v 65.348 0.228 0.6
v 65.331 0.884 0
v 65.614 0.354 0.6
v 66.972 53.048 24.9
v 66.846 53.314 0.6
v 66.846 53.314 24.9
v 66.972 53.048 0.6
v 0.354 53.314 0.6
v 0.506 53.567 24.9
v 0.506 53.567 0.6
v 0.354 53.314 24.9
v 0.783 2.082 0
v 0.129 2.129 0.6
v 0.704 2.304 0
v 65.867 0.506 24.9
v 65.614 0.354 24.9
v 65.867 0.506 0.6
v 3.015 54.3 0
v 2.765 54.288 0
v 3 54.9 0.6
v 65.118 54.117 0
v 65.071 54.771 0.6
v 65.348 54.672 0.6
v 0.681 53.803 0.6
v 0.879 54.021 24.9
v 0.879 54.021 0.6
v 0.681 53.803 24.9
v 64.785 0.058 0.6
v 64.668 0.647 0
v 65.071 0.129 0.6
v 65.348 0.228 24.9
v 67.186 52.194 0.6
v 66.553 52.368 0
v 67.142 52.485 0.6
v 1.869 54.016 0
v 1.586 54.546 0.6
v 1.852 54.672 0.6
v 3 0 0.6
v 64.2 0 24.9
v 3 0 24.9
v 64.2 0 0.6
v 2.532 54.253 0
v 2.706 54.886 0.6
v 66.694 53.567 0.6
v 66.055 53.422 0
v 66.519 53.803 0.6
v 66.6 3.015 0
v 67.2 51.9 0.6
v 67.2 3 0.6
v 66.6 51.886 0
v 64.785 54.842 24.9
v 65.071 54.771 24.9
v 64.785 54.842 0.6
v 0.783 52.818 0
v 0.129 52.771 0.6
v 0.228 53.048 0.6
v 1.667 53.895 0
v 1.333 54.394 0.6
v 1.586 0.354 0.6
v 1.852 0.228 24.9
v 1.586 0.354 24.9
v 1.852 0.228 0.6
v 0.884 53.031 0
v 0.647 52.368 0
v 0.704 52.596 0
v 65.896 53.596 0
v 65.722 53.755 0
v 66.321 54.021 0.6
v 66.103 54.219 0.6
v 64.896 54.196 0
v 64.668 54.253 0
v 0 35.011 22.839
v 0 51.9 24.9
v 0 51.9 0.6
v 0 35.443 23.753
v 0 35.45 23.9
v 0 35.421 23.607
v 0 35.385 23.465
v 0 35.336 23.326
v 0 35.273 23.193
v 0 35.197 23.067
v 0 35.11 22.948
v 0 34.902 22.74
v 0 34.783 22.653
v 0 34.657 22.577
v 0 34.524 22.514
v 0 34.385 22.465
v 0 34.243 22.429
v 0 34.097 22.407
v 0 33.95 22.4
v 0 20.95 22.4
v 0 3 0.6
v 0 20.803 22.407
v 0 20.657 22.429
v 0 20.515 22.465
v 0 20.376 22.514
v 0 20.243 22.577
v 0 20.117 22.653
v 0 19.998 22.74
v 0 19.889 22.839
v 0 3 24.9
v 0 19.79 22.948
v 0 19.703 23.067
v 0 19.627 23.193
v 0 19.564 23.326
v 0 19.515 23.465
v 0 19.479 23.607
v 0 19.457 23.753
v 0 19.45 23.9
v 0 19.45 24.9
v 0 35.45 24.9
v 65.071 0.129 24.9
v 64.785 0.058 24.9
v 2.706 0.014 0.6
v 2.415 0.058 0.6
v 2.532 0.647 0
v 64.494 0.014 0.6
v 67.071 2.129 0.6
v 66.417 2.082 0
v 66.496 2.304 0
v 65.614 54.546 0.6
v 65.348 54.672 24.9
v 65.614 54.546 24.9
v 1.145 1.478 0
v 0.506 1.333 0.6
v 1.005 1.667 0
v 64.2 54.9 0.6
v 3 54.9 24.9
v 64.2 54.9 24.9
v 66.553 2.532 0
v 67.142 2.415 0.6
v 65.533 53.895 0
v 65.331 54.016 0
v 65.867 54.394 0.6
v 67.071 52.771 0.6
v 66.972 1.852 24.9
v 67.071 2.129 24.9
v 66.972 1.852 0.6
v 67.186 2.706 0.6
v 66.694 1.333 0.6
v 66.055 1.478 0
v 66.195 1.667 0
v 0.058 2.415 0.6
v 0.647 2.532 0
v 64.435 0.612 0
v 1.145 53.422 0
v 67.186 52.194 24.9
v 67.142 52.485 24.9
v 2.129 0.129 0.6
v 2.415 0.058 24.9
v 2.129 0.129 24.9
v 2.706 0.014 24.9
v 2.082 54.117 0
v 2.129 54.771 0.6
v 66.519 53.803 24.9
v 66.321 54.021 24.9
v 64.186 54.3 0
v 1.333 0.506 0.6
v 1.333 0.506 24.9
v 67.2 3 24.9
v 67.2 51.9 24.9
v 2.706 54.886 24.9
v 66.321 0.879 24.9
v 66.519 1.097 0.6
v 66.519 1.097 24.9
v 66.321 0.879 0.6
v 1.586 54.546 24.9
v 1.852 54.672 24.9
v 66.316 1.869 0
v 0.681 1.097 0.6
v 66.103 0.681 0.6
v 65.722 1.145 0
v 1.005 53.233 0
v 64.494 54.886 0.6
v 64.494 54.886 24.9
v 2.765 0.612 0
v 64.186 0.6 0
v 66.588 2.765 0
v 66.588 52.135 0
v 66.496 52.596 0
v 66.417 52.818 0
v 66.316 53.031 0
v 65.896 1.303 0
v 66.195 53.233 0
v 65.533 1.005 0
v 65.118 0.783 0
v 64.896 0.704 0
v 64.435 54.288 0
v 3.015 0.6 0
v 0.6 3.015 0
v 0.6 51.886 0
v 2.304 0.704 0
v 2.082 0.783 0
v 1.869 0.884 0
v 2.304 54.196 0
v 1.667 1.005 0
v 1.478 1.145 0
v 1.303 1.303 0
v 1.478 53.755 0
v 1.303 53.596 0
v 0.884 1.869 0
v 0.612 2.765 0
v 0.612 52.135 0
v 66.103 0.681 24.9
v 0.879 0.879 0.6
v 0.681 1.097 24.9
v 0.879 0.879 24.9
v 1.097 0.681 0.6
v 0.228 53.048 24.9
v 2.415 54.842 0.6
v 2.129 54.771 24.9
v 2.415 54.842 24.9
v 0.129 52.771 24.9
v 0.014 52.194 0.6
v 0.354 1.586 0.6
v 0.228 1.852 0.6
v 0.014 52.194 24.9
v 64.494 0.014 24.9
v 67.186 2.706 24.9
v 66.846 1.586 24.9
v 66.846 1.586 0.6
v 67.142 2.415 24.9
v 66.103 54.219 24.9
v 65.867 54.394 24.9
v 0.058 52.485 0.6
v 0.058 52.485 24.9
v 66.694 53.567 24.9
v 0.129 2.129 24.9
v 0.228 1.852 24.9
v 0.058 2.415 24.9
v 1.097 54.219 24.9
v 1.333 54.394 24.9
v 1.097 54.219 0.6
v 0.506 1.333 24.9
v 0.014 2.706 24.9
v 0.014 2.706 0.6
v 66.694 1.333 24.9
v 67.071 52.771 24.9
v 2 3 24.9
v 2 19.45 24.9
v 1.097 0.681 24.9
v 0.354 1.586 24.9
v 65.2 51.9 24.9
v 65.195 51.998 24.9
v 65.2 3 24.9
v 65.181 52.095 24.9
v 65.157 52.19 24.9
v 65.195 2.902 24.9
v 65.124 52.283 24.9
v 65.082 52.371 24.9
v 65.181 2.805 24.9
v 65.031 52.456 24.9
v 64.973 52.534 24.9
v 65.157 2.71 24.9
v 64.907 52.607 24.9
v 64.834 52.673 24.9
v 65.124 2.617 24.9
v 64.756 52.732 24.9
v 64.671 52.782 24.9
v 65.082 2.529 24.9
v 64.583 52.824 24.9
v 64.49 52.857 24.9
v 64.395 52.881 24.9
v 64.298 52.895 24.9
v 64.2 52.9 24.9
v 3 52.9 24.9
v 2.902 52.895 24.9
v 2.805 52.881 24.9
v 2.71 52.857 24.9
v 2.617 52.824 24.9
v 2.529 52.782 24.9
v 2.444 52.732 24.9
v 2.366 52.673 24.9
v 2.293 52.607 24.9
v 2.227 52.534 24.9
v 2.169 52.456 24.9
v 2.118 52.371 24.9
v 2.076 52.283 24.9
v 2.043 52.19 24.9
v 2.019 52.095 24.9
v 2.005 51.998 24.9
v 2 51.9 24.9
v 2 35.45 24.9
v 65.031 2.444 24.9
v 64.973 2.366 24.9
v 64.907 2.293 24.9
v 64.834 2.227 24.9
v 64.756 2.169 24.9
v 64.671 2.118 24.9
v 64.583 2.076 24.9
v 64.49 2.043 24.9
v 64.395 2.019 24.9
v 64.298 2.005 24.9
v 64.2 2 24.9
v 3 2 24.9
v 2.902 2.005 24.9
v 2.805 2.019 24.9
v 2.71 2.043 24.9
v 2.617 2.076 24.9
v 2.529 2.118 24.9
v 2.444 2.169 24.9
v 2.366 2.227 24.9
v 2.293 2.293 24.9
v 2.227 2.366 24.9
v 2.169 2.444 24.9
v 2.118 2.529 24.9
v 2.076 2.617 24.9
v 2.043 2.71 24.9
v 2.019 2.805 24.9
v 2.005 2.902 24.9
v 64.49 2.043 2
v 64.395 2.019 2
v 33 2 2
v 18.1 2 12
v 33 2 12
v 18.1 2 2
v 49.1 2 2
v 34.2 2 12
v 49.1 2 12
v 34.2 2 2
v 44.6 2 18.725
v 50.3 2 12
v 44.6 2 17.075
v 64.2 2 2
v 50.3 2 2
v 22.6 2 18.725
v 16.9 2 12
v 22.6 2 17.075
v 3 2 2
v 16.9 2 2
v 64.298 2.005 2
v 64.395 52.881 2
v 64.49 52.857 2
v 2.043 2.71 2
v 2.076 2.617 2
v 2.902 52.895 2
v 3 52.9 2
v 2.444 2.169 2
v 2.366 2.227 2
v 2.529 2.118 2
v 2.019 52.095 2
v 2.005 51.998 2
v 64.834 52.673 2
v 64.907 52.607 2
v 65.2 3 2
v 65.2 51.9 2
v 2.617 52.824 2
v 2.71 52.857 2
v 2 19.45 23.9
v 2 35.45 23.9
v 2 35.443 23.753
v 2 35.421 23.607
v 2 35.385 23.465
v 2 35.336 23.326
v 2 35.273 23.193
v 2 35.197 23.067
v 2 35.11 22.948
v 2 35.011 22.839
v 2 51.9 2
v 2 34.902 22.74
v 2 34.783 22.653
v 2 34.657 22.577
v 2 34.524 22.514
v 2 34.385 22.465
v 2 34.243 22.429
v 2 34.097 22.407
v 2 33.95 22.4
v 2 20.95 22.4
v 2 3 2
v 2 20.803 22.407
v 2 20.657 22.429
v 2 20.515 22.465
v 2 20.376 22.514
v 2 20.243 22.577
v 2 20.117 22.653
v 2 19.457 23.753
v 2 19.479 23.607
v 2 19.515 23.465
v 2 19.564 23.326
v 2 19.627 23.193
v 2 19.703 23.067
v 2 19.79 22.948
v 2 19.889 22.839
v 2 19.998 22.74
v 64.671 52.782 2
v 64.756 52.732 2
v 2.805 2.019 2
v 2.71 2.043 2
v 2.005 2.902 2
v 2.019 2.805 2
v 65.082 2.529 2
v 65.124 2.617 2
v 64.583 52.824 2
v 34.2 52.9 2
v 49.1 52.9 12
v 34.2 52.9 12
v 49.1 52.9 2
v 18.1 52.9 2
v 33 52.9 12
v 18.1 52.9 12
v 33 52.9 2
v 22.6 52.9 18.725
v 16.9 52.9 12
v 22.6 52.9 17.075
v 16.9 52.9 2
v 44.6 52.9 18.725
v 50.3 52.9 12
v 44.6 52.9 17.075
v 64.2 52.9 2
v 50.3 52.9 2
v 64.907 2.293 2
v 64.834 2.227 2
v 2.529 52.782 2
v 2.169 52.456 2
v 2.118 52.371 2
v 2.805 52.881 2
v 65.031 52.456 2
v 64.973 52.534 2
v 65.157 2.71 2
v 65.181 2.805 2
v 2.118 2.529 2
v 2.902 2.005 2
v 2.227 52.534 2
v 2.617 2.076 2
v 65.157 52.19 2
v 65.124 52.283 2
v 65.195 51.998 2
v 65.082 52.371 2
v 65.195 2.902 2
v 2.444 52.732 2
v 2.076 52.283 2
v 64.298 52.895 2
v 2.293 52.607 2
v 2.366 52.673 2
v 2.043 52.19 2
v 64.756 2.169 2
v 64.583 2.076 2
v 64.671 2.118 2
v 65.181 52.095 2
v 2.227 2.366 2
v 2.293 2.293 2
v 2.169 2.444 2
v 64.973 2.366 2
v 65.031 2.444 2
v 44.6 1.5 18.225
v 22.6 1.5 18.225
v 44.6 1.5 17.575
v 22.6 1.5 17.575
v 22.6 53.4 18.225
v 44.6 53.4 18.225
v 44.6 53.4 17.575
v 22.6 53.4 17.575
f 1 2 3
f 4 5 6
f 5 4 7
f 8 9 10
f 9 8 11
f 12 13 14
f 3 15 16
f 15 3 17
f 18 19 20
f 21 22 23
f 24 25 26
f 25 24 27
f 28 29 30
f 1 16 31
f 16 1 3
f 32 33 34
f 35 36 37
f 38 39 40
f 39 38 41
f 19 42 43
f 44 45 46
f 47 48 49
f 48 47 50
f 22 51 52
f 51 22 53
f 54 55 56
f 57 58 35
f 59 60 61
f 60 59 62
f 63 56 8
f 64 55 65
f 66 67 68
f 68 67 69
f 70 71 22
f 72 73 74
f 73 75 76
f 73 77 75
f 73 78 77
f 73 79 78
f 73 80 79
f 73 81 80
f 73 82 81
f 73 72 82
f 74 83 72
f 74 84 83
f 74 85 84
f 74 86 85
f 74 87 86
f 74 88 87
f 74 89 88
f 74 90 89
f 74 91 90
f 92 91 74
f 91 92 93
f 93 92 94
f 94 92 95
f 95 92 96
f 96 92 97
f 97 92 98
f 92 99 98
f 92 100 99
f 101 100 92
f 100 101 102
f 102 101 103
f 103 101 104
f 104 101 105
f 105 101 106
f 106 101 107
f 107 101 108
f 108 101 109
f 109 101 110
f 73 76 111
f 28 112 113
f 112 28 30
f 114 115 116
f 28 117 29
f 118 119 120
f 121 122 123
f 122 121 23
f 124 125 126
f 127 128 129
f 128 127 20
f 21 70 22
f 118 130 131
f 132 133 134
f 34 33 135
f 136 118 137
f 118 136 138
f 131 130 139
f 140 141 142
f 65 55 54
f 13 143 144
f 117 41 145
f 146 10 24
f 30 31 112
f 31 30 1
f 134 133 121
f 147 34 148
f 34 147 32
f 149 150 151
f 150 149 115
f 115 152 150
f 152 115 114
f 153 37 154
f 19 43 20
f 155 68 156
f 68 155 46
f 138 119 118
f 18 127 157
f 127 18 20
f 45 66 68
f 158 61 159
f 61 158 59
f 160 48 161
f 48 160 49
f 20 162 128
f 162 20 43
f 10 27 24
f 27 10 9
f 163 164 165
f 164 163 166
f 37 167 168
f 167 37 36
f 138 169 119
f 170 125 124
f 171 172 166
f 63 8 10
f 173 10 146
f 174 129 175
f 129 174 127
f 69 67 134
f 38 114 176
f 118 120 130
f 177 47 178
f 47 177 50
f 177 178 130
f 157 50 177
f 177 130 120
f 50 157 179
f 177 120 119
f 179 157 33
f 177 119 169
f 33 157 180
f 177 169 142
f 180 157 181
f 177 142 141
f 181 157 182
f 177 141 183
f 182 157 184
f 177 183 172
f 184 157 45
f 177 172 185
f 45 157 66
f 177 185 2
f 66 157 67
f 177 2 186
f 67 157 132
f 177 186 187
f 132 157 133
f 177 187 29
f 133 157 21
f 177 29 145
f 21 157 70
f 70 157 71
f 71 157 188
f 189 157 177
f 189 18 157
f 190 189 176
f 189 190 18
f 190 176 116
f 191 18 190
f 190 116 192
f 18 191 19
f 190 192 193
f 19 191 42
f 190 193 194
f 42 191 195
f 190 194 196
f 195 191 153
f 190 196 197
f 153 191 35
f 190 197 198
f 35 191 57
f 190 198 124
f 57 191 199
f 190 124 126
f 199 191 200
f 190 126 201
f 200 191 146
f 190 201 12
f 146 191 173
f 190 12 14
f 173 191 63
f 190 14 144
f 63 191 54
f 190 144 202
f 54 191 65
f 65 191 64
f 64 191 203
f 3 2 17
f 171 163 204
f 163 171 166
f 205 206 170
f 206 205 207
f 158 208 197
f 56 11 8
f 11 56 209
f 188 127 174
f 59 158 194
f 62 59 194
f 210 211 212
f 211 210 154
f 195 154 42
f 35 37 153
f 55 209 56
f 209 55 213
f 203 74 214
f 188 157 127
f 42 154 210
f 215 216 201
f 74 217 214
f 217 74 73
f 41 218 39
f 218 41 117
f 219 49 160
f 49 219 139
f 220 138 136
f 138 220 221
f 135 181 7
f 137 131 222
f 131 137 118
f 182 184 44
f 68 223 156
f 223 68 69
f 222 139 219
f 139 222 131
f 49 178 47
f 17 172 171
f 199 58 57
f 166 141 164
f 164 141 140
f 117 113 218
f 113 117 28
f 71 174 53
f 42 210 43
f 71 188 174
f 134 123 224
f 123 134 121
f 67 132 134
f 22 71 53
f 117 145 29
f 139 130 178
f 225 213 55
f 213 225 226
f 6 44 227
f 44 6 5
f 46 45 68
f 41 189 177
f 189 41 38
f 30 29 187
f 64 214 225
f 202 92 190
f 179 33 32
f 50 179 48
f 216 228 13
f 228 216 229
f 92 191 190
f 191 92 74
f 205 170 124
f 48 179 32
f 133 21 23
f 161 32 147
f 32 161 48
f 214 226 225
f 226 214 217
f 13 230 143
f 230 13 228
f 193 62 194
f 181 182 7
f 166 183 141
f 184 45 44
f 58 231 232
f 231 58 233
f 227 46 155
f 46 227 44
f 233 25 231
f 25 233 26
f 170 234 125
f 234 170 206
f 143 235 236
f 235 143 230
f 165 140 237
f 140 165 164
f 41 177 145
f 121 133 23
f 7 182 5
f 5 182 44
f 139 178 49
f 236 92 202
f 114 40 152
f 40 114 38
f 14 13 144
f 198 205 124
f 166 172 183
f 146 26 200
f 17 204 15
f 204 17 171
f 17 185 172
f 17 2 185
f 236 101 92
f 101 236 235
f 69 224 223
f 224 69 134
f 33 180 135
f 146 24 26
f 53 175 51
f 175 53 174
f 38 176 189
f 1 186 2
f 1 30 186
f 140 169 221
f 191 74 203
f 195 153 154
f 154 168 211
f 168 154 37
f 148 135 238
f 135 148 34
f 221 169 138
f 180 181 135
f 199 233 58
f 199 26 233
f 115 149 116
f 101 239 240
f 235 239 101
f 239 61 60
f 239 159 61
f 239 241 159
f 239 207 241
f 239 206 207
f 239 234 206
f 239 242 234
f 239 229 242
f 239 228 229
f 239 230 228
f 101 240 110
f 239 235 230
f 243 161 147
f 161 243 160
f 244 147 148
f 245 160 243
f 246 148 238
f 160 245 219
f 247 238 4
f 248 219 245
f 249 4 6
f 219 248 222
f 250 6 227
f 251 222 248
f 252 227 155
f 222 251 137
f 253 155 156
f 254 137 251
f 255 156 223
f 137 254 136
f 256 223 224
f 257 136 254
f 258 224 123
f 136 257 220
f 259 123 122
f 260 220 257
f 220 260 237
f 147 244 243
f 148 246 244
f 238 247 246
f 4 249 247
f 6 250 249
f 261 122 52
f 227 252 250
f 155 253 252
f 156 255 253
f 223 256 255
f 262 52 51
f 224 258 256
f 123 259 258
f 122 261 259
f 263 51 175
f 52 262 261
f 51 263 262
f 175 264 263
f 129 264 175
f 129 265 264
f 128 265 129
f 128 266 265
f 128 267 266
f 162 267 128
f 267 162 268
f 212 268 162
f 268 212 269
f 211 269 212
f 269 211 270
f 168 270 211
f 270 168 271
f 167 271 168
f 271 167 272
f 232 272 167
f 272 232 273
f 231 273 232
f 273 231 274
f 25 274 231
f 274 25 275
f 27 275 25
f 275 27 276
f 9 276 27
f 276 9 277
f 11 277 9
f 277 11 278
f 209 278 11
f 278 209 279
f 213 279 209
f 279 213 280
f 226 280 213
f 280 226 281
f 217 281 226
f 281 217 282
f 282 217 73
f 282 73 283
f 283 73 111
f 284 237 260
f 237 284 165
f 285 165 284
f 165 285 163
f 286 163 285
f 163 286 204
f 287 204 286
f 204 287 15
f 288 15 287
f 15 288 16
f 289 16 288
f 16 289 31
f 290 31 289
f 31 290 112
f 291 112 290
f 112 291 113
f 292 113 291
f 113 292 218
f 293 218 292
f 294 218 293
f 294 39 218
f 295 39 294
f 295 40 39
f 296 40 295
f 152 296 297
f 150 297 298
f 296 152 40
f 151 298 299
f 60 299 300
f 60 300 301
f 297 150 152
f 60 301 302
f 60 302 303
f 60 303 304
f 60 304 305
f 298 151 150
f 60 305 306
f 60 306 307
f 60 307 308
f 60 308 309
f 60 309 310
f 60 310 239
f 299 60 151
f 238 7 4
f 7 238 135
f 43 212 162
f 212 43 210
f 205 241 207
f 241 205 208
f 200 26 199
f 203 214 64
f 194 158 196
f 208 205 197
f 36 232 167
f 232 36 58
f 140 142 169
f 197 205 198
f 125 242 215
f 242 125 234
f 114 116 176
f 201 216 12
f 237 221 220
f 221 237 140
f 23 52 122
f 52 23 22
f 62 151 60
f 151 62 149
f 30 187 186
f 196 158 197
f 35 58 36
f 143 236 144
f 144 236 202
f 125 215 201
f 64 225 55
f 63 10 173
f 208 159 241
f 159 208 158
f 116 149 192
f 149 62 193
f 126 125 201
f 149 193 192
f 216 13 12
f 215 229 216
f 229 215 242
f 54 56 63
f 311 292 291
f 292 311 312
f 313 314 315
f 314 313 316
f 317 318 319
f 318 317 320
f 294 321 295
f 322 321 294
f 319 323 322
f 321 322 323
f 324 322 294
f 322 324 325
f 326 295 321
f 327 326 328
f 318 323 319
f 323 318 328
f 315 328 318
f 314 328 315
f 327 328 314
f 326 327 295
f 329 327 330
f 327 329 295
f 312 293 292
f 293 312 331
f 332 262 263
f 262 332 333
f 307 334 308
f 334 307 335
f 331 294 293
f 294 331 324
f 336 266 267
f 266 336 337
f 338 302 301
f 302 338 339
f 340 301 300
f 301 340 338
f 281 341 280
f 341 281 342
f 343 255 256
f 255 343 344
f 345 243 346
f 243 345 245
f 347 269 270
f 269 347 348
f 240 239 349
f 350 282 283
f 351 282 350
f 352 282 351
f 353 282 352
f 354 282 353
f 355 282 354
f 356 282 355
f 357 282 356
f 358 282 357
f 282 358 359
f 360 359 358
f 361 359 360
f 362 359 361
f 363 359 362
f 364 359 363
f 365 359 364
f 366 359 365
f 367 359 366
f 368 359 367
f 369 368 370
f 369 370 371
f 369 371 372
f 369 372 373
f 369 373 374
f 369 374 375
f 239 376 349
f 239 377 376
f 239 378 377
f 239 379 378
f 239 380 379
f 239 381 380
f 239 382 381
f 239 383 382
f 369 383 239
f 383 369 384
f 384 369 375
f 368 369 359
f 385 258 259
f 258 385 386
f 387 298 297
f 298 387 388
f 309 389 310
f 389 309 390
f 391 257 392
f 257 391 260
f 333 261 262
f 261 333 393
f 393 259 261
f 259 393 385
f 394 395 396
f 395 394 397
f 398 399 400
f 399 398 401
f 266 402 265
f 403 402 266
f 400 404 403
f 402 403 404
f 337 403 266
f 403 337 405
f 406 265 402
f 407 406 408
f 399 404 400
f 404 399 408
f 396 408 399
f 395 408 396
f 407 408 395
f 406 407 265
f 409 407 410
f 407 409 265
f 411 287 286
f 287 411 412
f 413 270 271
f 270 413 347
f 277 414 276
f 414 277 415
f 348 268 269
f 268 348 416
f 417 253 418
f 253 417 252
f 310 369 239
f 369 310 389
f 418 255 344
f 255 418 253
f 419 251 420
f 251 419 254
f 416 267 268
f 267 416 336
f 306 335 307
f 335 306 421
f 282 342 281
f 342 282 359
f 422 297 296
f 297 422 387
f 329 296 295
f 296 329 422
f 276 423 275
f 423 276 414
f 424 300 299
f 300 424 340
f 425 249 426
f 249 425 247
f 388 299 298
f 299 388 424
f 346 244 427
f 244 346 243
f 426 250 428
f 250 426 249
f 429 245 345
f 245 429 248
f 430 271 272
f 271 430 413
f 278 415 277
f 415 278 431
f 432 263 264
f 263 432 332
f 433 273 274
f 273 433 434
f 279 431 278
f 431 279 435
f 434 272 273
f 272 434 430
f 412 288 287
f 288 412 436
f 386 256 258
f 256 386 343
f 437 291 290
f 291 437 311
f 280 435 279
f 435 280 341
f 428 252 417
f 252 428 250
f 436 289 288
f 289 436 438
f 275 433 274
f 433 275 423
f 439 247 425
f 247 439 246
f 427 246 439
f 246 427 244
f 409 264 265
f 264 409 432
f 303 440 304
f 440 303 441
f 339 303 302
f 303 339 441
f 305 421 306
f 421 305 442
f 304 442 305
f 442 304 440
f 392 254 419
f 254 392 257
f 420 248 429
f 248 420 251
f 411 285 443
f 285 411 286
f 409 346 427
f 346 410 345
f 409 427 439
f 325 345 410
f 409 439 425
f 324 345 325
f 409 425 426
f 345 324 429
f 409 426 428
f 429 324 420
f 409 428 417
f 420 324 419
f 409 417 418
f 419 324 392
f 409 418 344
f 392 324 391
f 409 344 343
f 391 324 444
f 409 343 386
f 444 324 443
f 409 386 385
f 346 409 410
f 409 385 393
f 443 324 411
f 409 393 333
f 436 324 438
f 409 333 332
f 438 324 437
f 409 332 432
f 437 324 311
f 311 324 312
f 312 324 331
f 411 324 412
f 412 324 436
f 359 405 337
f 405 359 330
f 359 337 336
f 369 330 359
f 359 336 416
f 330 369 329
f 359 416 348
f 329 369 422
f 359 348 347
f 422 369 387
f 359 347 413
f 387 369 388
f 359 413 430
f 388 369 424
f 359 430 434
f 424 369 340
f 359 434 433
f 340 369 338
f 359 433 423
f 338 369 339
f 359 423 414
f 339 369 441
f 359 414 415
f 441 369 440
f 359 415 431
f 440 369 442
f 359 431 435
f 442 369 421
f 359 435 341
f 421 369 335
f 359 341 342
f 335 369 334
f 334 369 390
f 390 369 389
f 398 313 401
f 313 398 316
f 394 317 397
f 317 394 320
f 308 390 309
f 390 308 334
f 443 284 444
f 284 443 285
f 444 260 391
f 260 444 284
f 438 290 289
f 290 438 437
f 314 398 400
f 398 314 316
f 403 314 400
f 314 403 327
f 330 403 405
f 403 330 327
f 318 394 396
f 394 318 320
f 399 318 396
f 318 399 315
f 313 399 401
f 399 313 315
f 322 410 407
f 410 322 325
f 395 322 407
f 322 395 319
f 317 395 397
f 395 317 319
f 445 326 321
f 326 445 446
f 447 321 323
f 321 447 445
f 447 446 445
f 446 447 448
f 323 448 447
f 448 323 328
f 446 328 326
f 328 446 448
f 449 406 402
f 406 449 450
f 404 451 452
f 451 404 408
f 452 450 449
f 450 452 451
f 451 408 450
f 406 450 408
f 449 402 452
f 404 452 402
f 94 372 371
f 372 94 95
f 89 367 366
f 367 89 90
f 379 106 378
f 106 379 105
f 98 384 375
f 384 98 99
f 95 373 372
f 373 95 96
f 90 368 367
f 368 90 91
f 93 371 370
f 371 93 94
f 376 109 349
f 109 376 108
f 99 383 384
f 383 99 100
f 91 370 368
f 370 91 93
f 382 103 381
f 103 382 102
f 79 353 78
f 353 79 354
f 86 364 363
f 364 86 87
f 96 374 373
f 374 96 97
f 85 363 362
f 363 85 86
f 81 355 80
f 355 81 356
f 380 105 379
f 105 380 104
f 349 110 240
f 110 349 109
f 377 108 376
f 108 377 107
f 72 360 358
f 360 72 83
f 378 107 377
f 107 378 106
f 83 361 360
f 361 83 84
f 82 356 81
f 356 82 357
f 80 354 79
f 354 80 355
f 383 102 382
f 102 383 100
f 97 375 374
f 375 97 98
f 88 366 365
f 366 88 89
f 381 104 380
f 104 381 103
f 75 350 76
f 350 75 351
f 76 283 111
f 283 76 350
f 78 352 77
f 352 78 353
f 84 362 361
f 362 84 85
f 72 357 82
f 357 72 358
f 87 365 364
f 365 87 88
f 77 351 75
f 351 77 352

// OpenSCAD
// file: perfil_impresora.scad
// ==========================================
// Proyecto: piezas3D
// Componente: Perfil de impresora
// Descripción: Holguras y límites de la impresora real. Lo incluyen las piezas con encajes.
// ==========================================

// --- PARÁMETROS Y CONSTANTES ---

// Origen de los valores
perfil_medido = false;      // true solo después de imprimir y medir el peine de calibración
perfil_impresora = "Bambu Lab A1"; // marca y modelo
perfil_material = "PETG";   // las holguras cambian con el material: PLA ≠ PETG ≠ ABS
perfil_boquilla = 0.4;      // [mm]
perfil_fecha = "";          // AAAA-MM-DD de la medición

// Holguras: mm que se suman al diámetro del agujero. Se miden como agujero_elegido − 6,00
holgura_presion = 0.15;     // entra con fuerza y queda fijo sin pegamento
holgura_justo = 0.25;       // entra a mano y sin juego (uso diario)
holgura_deslizante = 0.30;  // se mueve libre, sin juego apreciable
holgura_suelto = 0.40;      // cae solo, con juego visible

// Expansión horizontal por lado: (bloque_medido − 20,00) / 2.
// Positiva = la impresora "engorda" las piezas y los agujeros salen más chicos.
expansion_xy = 0.00;

// Límites de impresión
espesor_min_pared = 1.2;    // [mm]
espesor_min_piso = 0.8;     // [mm]
voladizo_max = 45;          // [°] respecto de la vertical
puente_max = 10;            // [mm]
cama = [256, 256, 256];     // [mm] X, Y, Z (Bambu Lab A1)
margen_cama = 10;           // [mm] por lado

// --- VALIDACIONES ---
assert(holgura_presion < holgura_justo && holgura_justo < holgura_deslizante
       && holgura_deslizante < holgura_suelto,
       "las holguras deben crecer: presión < justo < deslizante < suelto");
assert(cama[0] > 2 * margen_cama && cama[1] > 2 * margen_cama,
       "el margen de la cama no deja superficie útil");

// --- FUNCIONES ---
function holgura(tipo = "justo") =
    tipo == "presion"    ? holgura_presion :
    tipo == "justo"      ? holgura_justo :
    tipo == "deslizante" ? holgura_deslizante :
    tipo == "suelto"     ? holgura_suelto :
    assert(false, str("tipo de holgura desconocido: ", tipo)) 0;

// Superficie útil de la cama (X, Y) descontando el margen
function cama_util() = [cama[0] - 2 * margen_cama, cama[1] - 2 * margen_cama];
// main file
// ==========================================
// Proyecto: piezas3D – Caja de pilas
// Componente: Caja
// Descripción: Caja con un alojamiento por pila (acostadas en fila), tabiques entre alojamientos,
//              ranuras del encastre a 45° en el centro de las paredes largas y muesca de apertura
//              en una pared corta. Se imprime con la abertura hacia arriba, sin soportes.
// ==========================================

// --- PARÁMETROS Y CONSTANTES ---
// Todas las medidas y validaciones están en el archivo compartido (las usa también la tapa).
include <caja_pilas_parametros.scad>

// --- ENSAMBLAJE ---
ensamblaje_principal();

module ensamblaje_principal() {
    pieza_caja();
}

// Orientación de impresión = posición en el conjunto: esquina exterior en el origen, base en Z = 0.
module pieza_caja() {
    difference() {
        union() {
            cuerpo_caja();
            tabiques();
        }
        // Los cortes van siempre al final
        ranuras_encastre();
        muesca_apertura();
    }
}

// --- MÓDULOS ---
// Cuerpo principal: piso y paredes con el chaflán de la base
module cuerpo_caja() {
    difference() {
        prisma_achaflanado(alto_caja);
        translate([0, 0, espesor_piso]) linear_extrude(height = alto_caja - espesor_piso + eps) contorno_interior();
    }
}

// Suma: tabiques entre alojamientos, de pared larga a pared larga
module tabiques() {
    for (i = [1:1:cantidad_pilas - 1])
        translate([espesor_pared + i*paso_alojamiento - espesor_tabique, espesor_pared - eps, espesor_piso - eps])
            cube([espesor_tabique, interior_y + 2*eps, alto_tabique + eps]);
}

// Resta: ranura trapezoidal en la cara interior de cada pared larga, donde engancha el reborde
module ranuras_encastre() {
    // [cara interior de la pared, sentido hacia afuera]
    for (pared = [[espesor_pared, -1], [espesor_pared + interior_y, 1]])
        translate([centro_x - largo_ranura/2, pared[0], alto_caja - z_reborde])
            scale([1, pared[1], 1]) rotate([90, 0, 90])
                linear_extrude(height = largo_ranura) trapecio_encastre(profundidad_ranura, plano_ranura);
}

// Resta: muesca con fondo redondeado en la pared corta X = 0, para meter la uña bajo la tapa
module muesca_apertura() {
    alto_corte = profundidad_muesca + 2*radio_fondo_muesca + 1;   // sobresale por encima del borde
    translate([-eps, 0, 0]) rotate([90, 0, 90]) linear_extrude(height = espesor_pared + 2*eps)
        translate([centro_y - ancho_muesca/2, alto_caja - profundidad_muesca])
            offset(r = radio_fondo_muesca) offset(delta = -radio_fondo_muesca) square([ancho_muesca, alto_corte]);
}
